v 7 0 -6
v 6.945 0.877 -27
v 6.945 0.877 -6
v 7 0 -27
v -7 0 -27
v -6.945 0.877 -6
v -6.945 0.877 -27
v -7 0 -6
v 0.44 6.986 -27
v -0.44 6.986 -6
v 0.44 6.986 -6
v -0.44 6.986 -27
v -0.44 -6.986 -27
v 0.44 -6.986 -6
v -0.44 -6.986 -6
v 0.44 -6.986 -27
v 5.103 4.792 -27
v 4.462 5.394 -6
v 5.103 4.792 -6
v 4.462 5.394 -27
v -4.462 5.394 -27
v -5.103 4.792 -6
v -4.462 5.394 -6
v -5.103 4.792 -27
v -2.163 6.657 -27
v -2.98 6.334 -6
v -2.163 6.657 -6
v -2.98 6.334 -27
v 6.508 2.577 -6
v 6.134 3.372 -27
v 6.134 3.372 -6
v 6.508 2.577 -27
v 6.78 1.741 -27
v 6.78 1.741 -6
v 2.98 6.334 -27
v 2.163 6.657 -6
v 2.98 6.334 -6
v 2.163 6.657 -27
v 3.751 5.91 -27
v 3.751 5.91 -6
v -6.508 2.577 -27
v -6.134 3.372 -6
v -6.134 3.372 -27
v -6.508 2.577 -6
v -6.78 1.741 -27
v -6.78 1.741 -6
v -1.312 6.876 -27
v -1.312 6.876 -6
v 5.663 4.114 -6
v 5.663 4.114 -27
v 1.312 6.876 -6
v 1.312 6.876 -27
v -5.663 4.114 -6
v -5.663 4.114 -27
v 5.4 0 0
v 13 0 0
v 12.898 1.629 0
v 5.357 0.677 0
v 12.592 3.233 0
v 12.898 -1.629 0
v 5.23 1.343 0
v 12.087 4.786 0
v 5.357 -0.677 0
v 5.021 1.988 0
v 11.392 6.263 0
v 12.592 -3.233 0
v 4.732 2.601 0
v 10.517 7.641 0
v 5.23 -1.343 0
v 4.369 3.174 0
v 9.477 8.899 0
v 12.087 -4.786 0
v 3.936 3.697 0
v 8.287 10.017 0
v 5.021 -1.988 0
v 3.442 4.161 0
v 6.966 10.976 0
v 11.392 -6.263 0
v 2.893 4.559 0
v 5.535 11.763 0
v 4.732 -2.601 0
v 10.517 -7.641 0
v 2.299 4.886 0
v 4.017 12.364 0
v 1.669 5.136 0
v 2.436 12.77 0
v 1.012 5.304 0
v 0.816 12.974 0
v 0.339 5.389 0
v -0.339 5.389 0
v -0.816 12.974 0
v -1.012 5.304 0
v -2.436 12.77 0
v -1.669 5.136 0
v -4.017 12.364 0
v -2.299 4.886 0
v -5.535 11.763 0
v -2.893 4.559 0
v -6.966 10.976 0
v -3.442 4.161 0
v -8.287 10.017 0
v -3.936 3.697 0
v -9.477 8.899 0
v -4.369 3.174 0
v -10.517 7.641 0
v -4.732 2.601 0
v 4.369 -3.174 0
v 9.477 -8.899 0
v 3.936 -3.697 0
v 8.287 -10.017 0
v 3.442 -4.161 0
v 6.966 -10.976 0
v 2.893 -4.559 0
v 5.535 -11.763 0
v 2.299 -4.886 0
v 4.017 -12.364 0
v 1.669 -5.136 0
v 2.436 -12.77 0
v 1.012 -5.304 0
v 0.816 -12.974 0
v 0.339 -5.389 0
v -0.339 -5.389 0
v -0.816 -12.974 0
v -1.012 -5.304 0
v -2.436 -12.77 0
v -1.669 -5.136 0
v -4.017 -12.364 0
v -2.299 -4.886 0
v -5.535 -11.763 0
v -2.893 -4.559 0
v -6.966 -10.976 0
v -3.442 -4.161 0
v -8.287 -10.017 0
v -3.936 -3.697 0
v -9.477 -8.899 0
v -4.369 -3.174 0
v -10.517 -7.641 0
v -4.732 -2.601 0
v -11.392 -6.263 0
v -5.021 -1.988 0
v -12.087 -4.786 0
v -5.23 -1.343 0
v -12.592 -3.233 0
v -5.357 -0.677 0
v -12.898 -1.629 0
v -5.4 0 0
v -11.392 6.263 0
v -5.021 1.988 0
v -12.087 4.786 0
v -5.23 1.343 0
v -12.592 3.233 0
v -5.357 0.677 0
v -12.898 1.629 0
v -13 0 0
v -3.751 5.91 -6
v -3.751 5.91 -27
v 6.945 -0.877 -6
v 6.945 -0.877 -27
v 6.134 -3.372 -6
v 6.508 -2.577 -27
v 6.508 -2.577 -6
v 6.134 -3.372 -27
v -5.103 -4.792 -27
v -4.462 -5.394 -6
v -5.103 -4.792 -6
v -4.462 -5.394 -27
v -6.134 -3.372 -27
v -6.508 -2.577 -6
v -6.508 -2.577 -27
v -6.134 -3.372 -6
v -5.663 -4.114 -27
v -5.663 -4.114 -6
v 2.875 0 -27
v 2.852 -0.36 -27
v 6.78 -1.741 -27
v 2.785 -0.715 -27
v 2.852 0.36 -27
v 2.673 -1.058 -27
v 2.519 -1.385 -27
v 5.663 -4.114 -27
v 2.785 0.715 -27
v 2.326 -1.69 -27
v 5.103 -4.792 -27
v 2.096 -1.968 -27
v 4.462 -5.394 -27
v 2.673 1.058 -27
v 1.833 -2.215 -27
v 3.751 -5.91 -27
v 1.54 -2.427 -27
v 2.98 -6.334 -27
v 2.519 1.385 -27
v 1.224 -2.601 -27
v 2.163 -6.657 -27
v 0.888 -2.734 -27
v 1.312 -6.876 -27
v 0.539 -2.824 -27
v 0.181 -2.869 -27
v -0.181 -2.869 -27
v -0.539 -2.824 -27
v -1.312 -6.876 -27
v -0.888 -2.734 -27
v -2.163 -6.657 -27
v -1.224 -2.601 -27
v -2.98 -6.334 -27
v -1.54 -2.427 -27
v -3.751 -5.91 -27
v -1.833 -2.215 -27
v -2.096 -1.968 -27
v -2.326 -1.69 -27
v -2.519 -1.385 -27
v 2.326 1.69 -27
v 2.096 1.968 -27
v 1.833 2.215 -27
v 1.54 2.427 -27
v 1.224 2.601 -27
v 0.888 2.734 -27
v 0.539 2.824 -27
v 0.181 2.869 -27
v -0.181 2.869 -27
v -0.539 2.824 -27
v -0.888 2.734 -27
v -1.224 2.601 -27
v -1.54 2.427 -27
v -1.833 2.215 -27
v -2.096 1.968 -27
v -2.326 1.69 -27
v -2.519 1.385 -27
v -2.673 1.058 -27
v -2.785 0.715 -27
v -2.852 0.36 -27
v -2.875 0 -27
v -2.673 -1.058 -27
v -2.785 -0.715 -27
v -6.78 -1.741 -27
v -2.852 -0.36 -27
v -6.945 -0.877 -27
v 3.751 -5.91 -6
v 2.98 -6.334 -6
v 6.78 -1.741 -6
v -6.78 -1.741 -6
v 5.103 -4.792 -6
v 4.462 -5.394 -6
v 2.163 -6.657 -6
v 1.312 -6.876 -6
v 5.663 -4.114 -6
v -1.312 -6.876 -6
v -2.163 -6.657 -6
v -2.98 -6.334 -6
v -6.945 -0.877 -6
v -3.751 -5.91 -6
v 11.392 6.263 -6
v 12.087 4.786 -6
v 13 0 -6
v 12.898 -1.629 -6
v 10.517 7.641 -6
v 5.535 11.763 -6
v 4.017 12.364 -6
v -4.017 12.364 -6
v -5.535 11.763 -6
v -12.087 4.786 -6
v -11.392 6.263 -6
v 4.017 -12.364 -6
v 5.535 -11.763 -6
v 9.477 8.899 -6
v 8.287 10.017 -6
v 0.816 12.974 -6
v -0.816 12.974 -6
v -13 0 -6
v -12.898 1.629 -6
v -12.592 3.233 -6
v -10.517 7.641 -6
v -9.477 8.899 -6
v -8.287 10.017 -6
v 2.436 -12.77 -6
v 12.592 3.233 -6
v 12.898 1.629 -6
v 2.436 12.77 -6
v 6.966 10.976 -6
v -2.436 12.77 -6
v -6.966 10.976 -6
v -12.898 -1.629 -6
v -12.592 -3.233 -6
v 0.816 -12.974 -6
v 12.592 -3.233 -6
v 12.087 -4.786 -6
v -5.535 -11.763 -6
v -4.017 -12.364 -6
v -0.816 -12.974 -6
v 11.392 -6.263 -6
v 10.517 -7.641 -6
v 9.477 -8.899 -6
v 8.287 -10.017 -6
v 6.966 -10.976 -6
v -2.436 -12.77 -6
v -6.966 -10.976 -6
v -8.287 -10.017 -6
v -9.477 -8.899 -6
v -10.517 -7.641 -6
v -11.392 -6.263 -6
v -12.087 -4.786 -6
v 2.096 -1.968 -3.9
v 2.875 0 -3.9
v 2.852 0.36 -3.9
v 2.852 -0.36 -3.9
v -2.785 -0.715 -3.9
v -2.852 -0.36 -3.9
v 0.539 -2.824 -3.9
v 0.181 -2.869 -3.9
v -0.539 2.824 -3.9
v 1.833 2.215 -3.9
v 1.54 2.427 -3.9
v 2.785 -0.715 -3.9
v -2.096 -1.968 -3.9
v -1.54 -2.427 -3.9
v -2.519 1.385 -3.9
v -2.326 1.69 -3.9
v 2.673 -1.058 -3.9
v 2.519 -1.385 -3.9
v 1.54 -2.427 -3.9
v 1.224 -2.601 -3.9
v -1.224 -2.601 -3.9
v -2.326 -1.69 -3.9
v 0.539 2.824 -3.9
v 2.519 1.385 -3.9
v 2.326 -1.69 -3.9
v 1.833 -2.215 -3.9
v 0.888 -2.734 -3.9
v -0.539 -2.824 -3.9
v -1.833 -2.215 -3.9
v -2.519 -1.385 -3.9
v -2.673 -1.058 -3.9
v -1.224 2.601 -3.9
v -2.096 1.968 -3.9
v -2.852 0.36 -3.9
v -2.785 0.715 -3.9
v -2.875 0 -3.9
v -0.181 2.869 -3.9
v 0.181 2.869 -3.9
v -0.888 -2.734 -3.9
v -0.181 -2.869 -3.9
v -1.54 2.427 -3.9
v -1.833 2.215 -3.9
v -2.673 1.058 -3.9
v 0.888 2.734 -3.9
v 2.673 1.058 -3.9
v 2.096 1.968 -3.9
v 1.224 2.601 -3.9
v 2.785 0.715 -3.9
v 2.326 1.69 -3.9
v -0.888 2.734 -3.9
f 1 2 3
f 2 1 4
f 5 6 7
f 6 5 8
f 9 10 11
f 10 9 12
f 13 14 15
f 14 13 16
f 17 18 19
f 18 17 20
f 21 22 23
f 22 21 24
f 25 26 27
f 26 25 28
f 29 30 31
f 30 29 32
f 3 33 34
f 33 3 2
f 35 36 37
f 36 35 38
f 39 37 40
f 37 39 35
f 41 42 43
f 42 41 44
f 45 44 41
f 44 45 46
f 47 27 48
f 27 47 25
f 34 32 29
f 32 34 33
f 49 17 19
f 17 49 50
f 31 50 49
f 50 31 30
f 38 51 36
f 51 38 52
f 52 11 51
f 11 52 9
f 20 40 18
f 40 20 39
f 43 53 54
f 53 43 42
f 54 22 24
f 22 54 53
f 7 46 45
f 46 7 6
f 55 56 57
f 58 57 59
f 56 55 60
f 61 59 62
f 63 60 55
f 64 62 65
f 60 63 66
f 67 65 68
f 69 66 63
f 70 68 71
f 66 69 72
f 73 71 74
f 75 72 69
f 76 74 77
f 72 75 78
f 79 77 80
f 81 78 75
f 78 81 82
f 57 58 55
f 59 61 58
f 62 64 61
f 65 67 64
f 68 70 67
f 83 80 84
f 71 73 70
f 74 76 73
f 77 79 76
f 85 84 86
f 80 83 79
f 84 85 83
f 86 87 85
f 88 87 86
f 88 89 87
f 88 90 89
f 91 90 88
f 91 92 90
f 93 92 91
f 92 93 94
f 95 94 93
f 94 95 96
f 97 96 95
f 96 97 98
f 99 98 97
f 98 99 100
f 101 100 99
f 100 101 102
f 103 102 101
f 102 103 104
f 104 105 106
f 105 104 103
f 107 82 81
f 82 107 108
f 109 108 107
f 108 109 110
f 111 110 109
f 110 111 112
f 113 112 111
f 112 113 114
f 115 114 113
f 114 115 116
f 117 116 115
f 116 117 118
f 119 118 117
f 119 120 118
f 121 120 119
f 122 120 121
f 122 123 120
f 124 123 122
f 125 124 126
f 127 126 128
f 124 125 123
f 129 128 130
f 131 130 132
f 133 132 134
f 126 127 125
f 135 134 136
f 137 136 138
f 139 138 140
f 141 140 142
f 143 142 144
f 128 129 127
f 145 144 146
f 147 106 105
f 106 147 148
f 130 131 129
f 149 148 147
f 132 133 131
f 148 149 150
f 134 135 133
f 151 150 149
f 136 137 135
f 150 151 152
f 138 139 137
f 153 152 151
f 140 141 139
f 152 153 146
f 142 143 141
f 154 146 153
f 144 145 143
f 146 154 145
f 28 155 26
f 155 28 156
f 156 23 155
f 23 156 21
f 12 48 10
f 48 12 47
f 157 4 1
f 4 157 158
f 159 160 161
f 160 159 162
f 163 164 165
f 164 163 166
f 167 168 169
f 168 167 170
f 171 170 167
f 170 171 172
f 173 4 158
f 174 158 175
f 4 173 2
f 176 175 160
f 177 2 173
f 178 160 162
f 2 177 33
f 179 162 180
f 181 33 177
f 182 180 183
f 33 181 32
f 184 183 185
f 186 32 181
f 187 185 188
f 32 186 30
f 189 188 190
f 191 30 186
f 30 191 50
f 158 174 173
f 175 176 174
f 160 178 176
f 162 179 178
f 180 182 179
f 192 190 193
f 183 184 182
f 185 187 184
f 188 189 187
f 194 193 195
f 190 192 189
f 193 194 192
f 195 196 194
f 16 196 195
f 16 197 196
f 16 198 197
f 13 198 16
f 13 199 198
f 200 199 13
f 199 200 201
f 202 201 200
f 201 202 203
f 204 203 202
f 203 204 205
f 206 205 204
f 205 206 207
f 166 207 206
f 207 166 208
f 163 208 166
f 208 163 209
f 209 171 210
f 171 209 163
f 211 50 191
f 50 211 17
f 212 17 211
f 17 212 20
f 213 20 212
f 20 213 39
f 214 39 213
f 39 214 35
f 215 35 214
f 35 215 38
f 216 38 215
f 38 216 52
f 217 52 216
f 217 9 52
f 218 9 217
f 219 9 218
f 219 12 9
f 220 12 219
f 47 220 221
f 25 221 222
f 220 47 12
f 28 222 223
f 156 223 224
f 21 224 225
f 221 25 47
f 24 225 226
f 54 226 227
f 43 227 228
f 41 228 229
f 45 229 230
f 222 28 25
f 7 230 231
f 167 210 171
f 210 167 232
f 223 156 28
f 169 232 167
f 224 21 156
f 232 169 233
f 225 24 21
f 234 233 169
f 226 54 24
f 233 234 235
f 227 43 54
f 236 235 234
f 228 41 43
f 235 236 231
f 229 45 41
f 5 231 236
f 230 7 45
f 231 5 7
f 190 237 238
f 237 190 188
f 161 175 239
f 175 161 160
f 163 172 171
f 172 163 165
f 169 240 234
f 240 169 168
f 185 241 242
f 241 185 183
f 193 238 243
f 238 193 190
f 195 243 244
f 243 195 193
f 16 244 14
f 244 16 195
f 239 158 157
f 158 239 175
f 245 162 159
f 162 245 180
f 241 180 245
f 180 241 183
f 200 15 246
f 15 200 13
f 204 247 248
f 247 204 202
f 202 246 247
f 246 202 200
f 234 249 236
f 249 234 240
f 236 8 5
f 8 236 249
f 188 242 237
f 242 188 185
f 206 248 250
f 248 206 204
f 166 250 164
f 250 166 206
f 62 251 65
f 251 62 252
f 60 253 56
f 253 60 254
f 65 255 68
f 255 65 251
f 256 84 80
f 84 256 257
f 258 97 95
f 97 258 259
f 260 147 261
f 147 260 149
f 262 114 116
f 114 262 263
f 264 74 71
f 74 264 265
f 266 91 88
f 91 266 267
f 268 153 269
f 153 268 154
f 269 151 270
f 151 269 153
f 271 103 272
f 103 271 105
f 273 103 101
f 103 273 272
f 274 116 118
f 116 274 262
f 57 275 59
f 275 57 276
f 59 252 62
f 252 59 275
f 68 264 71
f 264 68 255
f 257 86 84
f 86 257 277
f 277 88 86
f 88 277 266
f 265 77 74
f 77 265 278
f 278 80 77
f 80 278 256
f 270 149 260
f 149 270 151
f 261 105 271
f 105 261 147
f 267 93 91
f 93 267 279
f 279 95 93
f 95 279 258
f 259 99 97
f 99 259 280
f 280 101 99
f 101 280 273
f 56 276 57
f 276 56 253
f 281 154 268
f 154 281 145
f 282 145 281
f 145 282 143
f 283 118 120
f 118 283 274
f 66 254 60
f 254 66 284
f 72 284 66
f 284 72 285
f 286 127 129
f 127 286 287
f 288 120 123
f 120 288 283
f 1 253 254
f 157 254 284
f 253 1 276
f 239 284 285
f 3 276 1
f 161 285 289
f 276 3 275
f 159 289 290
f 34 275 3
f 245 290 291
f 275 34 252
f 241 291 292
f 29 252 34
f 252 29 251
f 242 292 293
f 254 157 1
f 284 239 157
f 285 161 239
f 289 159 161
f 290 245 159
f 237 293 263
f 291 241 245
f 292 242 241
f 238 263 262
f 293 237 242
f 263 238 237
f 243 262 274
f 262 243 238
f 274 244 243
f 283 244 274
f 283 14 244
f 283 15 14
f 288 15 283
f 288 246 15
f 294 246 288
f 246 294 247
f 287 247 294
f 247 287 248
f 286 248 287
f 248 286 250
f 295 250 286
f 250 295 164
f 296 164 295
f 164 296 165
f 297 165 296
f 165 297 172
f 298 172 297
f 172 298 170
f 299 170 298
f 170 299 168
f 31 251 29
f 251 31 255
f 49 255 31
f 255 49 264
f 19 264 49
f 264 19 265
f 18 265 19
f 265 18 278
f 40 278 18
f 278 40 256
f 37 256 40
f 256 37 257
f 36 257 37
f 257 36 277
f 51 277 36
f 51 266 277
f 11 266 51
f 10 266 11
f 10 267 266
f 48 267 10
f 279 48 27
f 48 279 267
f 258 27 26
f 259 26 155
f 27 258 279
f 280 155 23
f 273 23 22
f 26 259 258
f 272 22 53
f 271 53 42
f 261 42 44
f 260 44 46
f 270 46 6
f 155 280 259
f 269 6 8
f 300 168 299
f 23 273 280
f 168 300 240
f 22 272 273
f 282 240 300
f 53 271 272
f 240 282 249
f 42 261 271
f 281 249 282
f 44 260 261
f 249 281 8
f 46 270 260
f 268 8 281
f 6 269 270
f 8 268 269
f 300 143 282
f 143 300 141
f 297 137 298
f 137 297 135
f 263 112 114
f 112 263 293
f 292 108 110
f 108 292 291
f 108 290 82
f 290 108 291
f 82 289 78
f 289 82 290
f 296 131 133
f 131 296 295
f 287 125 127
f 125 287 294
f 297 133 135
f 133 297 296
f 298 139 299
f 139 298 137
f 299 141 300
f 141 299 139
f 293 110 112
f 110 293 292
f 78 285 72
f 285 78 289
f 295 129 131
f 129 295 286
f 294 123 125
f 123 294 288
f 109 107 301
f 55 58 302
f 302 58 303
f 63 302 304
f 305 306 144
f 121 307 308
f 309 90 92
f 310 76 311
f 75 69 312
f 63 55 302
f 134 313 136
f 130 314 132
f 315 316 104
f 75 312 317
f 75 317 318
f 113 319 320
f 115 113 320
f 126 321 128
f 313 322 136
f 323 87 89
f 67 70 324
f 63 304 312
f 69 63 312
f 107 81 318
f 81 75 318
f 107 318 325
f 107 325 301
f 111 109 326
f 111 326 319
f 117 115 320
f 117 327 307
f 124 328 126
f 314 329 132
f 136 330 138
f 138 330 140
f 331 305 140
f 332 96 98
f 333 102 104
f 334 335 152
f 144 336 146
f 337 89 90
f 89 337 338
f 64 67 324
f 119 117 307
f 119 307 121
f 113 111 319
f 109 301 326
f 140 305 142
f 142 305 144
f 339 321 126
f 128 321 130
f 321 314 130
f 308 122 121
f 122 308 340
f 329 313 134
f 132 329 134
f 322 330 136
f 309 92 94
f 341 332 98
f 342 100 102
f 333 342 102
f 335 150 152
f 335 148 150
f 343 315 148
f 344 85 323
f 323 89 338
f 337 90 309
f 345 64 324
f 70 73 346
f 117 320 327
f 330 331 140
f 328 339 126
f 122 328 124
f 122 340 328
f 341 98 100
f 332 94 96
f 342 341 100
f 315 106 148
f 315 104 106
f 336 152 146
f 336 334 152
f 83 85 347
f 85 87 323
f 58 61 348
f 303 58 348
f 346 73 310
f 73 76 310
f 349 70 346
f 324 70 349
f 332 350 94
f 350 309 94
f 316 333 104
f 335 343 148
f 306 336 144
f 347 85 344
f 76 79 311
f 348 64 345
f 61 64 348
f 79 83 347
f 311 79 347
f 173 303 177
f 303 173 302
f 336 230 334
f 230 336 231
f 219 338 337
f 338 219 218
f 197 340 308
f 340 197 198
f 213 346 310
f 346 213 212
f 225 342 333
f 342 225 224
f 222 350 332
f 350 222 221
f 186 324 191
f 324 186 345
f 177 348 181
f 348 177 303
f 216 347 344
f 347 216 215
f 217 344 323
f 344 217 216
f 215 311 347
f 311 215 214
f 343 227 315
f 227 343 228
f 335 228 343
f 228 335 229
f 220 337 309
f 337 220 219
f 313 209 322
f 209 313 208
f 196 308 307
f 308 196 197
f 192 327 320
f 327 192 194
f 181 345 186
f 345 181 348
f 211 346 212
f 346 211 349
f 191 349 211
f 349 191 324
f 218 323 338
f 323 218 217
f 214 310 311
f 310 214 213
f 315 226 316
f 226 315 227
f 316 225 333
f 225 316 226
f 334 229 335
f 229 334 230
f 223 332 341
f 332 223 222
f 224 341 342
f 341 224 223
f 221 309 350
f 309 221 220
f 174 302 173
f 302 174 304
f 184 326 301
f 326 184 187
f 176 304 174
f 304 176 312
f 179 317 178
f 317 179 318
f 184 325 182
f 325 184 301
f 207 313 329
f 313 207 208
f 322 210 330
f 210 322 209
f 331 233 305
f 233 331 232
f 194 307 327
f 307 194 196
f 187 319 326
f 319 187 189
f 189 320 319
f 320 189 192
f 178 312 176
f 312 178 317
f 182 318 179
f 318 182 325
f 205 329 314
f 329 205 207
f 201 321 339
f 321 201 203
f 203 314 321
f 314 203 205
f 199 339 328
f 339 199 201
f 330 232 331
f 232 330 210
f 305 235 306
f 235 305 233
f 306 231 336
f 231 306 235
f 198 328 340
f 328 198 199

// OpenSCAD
$fn = 50;


difference() {
	union() {
		translate(v = [0, 0, -27.0000000000]) {
			cylinder(h = 27, r = 7.0000000000);
		}
		translate(v = [0, 0, -6.0000000000]) {
			cylinder(h = 6, r = 13.0000000000);
		}
	}
	union() {
		translate(v = [0, 0, 0]) {
			rotate(a = [0, 0, 0]) {
				difference() {
					union() {
						#translate(v = [0, 0, -27.0000000000]) {
							cylinder(h = 27, r = 2.6000000000);
						}
						#translate(v = [0, 0, -3.9000000000]) {
							cylinder(h = 3.9000000000, r = 7.0000000000, r1 = 2.8750000000, r2 = 5.4000000000);
						}
						#translate(v = [0, 0, -27.0000000000]) {
							cylinder(h = 27, r = 2.8750000000);
						}
						#translate(v = [0, 0, -27.0000000000]) {
							cylinder(h = 27, r = 2.6000000000);
						}
					}
					union();
				}
			}
		}
	}
}
